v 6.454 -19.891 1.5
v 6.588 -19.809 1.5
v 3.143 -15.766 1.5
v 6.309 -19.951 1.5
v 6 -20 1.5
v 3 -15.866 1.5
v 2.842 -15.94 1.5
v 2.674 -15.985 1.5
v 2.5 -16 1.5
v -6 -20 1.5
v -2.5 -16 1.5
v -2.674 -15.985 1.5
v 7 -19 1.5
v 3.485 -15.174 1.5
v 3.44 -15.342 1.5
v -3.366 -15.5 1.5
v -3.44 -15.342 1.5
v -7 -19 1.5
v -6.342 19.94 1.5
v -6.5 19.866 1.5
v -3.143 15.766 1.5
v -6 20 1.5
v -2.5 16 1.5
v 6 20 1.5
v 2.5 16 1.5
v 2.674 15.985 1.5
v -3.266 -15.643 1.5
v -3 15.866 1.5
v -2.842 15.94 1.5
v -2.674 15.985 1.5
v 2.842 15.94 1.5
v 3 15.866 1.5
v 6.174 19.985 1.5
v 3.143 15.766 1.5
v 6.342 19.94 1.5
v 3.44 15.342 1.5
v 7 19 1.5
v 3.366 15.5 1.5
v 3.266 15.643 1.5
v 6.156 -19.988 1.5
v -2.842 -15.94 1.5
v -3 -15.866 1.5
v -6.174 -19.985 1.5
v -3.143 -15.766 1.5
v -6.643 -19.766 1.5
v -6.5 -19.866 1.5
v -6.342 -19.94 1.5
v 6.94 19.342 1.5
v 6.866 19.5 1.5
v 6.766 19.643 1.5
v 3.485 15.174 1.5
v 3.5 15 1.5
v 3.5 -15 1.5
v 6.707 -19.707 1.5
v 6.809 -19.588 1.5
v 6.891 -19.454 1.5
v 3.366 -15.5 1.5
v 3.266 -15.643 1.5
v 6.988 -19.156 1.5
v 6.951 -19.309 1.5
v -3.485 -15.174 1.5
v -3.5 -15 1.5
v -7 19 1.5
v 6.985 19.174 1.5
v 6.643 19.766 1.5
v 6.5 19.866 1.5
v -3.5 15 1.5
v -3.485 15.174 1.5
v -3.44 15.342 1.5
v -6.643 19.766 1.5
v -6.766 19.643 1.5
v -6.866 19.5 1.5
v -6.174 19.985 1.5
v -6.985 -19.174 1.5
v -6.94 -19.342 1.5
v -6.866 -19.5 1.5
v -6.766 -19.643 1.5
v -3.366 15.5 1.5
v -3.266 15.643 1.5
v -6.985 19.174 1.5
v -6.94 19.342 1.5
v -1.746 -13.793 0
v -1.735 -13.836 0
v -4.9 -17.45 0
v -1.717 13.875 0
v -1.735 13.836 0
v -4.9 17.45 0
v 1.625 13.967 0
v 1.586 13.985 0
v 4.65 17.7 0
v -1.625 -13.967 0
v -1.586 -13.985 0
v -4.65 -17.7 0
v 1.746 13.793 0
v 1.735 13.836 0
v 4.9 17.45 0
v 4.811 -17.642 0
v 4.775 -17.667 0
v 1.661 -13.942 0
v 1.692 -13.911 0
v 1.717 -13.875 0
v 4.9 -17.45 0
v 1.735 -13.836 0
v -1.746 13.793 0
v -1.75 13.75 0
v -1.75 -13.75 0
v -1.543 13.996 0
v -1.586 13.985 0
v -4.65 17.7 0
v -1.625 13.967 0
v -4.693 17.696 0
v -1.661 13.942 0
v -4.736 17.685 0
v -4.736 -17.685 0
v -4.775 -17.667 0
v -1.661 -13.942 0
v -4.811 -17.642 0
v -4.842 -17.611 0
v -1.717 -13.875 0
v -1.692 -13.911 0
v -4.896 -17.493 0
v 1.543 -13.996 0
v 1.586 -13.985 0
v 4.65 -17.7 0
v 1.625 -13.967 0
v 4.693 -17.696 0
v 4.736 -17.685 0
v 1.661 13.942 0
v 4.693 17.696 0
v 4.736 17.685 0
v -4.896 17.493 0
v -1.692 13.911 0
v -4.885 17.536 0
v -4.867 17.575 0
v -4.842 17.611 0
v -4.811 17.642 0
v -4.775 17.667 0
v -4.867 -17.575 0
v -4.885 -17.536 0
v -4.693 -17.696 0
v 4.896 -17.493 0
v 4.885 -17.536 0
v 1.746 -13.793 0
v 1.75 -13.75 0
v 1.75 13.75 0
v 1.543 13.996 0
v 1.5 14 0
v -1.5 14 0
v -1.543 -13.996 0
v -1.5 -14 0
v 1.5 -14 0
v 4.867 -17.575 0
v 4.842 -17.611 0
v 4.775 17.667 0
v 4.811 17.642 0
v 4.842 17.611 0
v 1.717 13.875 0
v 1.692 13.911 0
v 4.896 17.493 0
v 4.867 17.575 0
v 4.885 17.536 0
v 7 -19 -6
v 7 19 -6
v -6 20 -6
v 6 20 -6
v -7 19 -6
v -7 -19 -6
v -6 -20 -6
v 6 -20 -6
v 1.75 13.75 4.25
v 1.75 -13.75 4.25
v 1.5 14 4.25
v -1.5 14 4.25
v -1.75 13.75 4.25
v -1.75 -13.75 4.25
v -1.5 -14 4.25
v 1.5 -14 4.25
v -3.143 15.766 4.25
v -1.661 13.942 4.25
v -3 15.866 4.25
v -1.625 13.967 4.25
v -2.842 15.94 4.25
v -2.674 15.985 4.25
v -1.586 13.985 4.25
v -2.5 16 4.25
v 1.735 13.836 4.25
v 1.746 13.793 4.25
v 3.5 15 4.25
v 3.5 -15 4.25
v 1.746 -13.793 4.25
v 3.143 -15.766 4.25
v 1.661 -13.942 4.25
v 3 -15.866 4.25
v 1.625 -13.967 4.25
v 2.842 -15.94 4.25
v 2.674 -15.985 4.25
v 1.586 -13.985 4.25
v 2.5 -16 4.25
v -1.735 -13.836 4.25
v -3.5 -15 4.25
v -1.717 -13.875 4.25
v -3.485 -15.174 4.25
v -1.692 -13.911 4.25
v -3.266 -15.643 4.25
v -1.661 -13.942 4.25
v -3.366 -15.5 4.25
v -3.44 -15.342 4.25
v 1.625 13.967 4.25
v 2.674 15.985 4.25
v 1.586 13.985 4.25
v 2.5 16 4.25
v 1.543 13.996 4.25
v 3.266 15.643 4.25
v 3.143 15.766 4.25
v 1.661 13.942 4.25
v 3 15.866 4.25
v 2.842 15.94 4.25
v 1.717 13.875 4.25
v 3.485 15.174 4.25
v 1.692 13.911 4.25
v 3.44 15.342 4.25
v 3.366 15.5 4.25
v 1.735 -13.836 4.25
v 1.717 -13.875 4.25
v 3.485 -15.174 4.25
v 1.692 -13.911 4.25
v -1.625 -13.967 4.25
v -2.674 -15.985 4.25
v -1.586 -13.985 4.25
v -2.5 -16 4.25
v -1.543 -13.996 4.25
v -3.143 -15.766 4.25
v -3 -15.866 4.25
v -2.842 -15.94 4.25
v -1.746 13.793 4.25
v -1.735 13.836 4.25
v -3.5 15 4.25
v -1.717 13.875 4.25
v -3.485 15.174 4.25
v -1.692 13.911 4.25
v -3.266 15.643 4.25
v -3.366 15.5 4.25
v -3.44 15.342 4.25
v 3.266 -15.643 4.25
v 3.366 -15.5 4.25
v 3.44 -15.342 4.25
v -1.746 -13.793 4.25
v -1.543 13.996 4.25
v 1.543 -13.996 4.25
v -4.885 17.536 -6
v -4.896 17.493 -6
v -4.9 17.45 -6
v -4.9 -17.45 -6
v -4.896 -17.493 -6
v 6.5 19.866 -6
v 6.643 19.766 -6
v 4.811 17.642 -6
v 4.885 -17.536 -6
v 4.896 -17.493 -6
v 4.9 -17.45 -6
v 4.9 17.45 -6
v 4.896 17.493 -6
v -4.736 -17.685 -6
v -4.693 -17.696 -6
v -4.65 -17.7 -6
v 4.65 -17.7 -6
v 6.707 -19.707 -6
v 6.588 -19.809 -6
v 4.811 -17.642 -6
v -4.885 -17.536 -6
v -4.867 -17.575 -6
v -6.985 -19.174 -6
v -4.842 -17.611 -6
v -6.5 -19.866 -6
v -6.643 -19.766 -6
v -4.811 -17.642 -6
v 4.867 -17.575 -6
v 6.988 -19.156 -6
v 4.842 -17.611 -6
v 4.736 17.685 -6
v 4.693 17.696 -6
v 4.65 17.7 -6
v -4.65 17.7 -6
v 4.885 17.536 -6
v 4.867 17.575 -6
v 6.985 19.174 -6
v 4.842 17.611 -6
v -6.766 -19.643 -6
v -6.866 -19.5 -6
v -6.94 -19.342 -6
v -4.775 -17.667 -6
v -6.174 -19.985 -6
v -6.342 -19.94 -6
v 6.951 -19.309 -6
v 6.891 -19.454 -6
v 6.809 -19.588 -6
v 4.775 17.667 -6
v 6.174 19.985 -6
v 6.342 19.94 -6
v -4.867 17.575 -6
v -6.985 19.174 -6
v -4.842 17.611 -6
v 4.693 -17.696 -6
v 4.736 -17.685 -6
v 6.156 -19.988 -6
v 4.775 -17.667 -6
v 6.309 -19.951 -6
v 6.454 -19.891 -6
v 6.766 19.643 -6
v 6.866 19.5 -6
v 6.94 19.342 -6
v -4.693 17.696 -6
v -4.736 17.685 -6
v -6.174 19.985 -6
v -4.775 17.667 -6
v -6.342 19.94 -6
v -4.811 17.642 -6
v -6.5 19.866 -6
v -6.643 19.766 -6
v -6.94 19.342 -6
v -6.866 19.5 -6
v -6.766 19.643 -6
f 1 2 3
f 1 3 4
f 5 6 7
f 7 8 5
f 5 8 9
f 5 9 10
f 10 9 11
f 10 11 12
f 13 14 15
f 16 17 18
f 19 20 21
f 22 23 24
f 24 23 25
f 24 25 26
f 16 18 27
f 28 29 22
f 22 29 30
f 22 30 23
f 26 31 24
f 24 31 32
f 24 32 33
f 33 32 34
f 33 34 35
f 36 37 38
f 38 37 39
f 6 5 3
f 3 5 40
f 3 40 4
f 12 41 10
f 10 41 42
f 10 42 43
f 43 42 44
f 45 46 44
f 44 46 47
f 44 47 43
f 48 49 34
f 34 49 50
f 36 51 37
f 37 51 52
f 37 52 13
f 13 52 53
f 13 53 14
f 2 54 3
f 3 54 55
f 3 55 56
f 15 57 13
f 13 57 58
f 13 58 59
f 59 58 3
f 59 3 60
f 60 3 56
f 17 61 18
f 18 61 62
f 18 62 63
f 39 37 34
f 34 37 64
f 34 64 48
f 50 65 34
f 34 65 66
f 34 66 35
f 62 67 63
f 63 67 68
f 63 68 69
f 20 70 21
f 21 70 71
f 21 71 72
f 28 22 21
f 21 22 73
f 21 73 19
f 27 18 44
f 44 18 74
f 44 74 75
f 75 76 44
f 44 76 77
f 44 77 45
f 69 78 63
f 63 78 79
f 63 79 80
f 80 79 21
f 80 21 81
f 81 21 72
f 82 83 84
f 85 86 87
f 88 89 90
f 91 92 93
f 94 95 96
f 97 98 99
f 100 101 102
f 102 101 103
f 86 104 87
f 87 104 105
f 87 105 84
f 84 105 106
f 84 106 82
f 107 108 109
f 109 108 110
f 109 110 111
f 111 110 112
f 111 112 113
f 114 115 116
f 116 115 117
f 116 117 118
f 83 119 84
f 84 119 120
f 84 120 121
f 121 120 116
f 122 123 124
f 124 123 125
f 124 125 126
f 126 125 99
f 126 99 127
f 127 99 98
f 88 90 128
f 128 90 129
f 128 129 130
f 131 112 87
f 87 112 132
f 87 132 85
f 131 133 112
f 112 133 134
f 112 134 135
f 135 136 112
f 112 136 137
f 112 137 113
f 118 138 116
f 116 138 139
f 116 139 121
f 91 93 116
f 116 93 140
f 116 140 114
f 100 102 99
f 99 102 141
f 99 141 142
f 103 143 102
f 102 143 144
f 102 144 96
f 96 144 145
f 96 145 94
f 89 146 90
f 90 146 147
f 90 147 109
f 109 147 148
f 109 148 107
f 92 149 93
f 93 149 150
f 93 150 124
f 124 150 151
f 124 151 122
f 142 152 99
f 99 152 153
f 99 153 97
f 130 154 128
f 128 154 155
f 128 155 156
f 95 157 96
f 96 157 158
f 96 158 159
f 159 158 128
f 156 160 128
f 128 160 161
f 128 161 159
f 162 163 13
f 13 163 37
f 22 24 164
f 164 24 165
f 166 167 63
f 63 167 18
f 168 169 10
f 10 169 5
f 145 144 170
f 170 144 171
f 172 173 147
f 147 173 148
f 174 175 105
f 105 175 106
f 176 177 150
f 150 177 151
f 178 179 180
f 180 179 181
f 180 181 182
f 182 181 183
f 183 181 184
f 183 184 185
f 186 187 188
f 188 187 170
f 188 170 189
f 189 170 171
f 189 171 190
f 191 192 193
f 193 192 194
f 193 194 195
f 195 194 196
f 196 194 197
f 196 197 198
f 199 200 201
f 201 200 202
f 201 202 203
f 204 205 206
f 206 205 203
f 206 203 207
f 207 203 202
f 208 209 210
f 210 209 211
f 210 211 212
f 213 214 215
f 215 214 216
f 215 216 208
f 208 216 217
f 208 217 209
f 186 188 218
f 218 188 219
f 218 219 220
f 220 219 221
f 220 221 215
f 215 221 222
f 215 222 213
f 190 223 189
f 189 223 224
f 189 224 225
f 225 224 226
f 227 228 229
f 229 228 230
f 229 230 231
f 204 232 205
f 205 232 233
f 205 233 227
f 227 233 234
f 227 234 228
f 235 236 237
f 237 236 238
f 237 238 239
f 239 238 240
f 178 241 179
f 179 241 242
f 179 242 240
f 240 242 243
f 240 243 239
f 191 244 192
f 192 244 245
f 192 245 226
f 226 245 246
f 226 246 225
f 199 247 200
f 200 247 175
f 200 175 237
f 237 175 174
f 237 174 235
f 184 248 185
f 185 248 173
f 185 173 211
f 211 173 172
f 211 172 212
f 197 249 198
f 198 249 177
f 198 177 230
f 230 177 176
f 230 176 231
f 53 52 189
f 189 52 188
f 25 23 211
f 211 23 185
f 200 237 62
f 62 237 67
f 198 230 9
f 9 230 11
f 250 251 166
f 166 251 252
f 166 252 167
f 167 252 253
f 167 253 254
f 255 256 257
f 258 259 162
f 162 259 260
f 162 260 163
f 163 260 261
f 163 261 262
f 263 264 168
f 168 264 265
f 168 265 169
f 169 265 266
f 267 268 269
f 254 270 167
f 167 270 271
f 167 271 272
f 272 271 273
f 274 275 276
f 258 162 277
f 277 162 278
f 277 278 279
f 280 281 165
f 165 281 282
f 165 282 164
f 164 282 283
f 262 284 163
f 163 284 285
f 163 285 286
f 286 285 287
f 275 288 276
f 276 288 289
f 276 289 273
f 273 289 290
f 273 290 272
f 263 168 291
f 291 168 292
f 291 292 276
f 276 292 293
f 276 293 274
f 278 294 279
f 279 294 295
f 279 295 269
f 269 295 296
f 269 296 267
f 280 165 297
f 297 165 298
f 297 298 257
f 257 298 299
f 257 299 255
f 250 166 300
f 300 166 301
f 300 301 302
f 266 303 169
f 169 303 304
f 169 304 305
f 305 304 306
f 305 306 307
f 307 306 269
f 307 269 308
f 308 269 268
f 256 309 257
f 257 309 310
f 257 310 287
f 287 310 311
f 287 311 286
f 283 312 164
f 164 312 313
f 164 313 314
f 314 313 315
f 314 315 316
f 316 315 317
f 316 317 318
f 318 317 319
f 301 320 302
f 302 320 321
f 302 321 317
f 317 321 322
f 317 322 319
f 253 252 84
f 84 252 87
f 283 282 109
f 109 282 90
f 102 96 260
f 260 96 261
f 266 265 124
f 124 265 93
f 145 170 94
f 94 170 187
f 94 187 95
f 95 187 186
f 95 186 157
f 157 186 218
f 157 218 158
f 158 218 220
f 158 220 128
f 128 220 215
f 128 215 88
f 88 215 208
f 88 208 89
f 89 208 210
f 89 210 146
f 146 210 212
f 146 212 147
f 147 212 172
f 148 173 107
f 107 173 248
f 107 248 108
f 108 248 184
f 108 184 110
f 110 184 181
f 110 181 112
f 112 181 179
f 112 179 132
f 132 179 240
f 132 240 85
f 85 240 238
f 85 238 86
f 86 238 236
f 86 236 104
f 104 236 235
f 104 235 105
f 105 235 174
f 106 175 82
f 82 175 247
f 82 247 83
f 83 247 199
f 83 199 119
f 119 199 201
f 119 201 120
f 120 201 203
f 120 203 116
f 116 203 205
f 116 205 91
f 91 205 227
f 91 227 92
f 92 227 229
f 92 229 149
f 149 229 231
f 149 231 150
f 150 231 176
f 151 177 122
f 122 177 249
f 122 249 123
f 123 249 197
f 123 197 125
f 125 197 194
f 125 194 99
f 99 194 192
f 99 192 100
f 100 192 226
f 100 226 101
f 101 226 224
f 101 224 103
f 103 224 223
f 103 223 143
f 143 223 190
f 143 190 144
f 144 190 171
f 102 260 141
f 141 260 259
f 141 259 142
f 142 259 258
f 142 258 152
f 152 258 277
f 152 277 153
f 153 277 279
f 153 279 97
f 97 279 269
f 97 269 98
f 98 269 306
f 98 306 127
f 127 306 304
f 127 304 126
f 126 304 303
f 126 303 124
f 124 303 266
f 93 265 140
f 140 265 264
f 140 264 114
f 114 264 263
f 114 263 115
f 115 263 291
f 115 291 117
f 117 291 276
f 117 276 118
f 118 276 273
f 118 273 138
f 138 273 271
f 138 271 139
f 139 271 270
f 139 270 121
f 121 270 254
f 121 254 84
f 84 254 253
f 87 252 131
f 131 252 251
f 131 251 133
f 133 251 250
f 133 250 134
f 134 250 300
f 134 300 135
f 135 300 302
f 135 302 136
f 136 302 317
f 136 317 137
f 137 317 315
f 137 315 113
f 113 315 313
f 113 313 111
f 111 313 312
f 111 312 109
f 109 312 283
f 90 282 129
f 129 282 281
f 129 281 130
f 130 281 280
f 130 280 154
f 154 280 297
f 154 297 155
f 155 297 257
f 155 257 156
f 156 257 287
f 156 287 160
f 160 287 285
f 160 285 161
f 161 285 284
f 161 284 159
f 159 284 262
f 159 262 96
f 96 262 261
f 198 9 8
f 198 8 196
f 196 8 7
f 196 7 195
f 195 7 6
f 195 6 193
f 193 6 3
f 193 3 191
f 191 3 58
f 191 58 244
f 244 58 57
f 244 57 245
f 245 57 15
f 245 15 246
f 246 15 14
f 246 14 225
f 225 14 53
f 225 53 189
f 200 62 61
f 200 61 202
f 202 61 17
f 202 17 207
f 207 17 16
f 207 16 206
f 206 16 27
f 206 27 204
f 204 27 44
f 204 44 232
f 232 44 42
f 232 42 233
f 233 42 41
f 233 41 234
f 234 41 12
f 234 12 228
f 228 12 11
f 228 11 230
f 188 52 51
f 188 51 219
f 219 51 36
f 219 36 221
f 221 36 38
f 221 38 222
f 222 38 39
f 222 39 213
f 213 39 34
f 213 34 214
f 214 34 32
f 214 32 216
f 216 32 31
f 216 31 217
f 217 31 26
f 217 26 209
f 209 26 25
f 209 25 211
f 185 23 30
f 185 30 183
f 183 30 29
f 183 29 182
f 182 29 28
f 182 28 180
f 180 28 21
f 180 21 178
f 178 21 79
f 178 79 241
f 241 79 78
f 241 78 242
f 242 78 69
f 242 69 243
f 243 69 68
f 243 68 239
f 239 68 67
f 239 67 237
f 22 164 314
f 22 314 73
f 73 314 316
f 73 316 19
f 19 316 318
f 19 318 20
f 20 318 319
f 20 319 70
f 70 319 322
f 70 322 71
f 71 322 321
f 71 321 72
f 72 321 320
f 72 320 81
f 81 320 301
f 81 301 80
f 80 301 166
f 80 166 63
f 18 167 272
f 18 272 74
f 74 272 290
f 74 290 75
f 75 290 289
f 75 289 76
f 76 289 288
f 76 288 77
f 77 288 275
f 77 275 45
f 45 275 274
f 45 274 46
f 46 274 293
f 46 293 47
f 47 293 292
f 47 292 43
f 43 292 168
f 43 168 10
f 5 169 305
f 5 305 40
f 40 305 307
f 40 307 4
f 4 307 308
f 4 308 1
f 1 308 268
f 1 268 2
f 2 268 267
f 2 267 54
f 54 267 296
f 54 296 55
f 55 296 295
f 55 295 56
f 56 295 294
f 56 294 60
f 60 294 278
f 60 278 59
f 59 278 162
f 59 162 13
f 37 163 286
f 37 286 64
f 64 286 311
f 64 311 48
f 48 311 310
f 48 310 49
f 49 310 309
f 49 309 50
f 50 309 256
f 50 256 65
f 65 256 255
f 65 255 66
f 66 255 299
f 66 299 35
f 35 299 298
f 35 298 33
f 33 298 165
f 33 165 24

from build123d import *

# Parameters (mm, degrees)
SKETCH1_W      = 14
SKETCH1_H      = 40
SKETCH1_W_2    = 3.5
SKETCH1_H_2    = 28
EXTRUDE1_DEPTH = 1.5
SKETCH2_W      = 7
SKETCH2_H      = 32
SKETCH2_W_2    = 3.5
SKETCH2_H_2    = 28
EXTRUDE2_DEPTH = 2.75
SKETCH3_W      = 14
SKETCH3_H      = 40
SKETCH3_W_2    = 9.8
SKETCH3_H_2    = 35.4
EXTRUDE3_DEPTH = 6
FILLET1_R      = 0.25
FILLET2_R      = 1


with BuildPart() as part:
    # Sketch1 → Extrude1 (new body)
    with BuildSketch(Plane.XY):
        Rectangle(SKETCH1_W, SKETCH1_H)
        Rectangle(SKETCH1_W_2, SKETCH1_H_2, mode=Mode.SUBTRACT)
    extrude(amount=EXTRUDE1_DEPTH)

    # Sketch2 → Extrude2 (add)
    with BuildSketch(Plane.XY.offset(1.5)):
        Rectangle(SKETCH2_W, SKETCH2_H)
        Rectangle(SKETCH2_W_2, SKETCH2_H_2, mode=Mode.SUBTRACT)
    extrude(amount=EXTRUDE2_DEPTH)

    # Sketch3 → Extrude3 (add)
    with BuildSketch(Plane(origin=(0, 0, 0), x_dir=(-1, 0, 0), z_dir=(0, 0, -1))):
        Rectangle(SKETCH3_W, SKETCH3_H)
        Rectangle(SKETCH3_W_2, SKETCH3_H_2, mode=Mode.SUBTRACT)
    extrude(amount=EXTRUDE3_DEPTH)

    # Fillet1
    fillet1_edges = [part.edges().sort_by_distance(p)[0] for p in [
        (1.75, -14, 2.125),
        (1.75, 14, 2.125),
        (-1.75, 14, 2.125),
        (-1.75, -14, 2.125),
        (-4.9, 17.7, -3),
        (4.9, 17.7, -3),
        (4.9, -17.7, -3),
        (-4.9, -17.7, -3),
    ]]
    fillet(fillet1_edges, radius=FILLET1_R)

    # Fillet2
    fillet2_edges = [part.edges().sort_by_distance(p)[0] for p in [
        (3.5, -16, 2.875),
        (3.5, 16, 2.875),
        (-3.5, 16, 2.875),
        (-3.5, -16, 2.875),
        (7, -20, -2.25),
        (-7, -20, -2.25),
        (-7, 20, -2.25),
        (7, 20, -2.25),
    ]]
    fillet(fillet2_edges, radius=FILLET2_R)


solid = part.part
